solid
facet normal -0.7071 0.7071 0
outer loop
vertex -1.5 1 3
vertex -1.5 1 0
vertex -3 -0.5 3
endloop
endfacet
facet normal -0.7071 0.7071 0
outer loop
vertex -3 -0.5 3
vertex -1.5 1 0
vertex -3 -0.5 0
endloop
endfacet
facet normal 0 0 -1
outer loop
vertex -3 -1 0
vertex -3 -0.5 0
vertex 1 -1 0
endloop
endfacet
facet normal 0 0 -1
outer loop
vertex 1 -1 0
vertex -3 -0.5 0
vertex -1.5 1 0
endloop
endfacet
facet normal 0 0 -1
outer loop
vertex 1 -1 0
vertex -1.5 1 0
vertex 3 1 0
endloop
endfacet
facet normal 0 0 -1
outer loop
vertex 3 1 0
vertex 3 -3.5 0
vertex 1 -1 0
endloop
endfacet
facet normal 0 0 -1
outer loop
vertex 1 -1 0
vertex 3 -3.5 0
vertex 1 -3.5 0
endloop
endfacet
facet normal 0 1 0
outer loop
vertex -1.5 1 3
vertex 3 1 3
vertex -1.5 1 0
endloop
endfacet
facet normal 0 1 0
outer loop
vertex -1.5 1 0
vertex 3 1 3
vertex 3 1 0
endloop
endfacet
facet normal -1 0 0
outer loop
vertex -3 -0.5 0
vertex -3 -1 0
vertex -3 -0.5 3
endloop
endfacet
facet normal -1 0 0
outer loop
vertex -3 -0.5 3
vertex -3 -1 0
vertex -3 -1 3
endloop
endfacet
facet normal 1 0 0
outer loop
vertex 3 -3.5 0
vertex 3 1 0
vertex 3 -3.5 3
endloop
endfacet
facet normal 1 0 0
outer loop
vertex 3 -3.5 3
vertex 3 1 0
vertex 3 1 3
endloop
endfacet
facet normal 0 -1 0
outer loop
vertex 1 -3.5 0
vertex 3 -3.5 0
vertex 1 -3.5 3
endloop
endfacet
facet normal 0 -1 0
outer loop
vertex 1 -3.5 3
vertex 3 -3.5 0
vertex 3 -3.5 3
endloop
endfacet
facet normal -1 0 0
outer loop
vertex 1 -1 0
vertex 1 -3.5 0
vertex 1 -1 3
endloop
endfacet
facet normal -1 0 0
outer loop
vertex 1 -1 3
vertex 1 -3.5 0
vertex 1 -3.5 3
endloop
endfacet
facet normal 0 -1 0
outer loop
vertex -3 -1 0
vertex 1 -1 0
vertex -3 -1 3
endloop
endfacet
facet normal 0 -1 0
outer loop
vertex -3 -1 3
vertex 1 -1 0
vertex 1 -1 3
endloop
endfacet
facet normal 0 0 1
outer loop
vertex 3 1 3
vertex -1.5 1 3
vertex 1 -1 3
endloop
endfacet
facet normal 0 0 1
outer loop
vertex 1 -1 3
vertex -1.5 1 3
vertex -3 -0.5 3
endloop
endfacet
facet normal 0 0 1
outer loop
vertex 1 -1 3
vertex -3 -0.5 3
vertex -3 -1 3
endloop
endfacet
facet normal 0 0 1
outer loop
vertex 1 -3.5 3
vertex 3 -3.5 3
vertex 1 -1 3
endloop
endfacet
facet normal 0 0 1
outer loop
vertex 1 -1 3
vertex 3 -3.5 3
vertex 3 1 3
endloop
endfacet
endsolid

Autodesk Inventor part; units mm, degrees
ref_plane "YZ Plane" through (0, 0, 0) normal (1, 0, 0) x (0, 1, 0)
ref_plane "XZ Plane" through (0, 0, 0) normal (0, 1, 0) x (-1, 0, 0)
ref_plane "XY Plane" through (0, 0, 0) normal (0, 0, 1) x (1, 0, 0)
sketch "Náčrt1" plane through (0, 0, 0) normal (0, 0, 1) x (1, 0, 0)
  line L0 (-3, -1) -> (3, -1)
  line L1 (3, -1) -> (3, 1)
  line L2 (3, 1) -> (-3, 1)
  line L3 (-3, 1) -> (-3, -1)
  line L4 (-3, -1) -> (3, 1) construction
  line L5 (3, -1) -> (-3, 1) construction
  line L6 (3, 1) -> (1, 1)
  line L7 (1, 1) -> (1, -3.5)
  line L8 (1, -3.5) -> (3, -3.5)
  line L9 (3, -3.5) -> (3, 1)
  point P0 (0, 0)
  point P1 (1, -1)
  dimension "d0" = 6
  dimension "d1" = 2
  dimension "d2" = 2
  dimension "d3" = 4.5
extrude "Vysunutí1" add sketch "Náčrt1" along normal blind 3
chamfer "Zkosení1" distance 1.5 angle 45 1 edges at (-3, 1, 1.5)
properties part number "sonar-liner_3D tisk"
